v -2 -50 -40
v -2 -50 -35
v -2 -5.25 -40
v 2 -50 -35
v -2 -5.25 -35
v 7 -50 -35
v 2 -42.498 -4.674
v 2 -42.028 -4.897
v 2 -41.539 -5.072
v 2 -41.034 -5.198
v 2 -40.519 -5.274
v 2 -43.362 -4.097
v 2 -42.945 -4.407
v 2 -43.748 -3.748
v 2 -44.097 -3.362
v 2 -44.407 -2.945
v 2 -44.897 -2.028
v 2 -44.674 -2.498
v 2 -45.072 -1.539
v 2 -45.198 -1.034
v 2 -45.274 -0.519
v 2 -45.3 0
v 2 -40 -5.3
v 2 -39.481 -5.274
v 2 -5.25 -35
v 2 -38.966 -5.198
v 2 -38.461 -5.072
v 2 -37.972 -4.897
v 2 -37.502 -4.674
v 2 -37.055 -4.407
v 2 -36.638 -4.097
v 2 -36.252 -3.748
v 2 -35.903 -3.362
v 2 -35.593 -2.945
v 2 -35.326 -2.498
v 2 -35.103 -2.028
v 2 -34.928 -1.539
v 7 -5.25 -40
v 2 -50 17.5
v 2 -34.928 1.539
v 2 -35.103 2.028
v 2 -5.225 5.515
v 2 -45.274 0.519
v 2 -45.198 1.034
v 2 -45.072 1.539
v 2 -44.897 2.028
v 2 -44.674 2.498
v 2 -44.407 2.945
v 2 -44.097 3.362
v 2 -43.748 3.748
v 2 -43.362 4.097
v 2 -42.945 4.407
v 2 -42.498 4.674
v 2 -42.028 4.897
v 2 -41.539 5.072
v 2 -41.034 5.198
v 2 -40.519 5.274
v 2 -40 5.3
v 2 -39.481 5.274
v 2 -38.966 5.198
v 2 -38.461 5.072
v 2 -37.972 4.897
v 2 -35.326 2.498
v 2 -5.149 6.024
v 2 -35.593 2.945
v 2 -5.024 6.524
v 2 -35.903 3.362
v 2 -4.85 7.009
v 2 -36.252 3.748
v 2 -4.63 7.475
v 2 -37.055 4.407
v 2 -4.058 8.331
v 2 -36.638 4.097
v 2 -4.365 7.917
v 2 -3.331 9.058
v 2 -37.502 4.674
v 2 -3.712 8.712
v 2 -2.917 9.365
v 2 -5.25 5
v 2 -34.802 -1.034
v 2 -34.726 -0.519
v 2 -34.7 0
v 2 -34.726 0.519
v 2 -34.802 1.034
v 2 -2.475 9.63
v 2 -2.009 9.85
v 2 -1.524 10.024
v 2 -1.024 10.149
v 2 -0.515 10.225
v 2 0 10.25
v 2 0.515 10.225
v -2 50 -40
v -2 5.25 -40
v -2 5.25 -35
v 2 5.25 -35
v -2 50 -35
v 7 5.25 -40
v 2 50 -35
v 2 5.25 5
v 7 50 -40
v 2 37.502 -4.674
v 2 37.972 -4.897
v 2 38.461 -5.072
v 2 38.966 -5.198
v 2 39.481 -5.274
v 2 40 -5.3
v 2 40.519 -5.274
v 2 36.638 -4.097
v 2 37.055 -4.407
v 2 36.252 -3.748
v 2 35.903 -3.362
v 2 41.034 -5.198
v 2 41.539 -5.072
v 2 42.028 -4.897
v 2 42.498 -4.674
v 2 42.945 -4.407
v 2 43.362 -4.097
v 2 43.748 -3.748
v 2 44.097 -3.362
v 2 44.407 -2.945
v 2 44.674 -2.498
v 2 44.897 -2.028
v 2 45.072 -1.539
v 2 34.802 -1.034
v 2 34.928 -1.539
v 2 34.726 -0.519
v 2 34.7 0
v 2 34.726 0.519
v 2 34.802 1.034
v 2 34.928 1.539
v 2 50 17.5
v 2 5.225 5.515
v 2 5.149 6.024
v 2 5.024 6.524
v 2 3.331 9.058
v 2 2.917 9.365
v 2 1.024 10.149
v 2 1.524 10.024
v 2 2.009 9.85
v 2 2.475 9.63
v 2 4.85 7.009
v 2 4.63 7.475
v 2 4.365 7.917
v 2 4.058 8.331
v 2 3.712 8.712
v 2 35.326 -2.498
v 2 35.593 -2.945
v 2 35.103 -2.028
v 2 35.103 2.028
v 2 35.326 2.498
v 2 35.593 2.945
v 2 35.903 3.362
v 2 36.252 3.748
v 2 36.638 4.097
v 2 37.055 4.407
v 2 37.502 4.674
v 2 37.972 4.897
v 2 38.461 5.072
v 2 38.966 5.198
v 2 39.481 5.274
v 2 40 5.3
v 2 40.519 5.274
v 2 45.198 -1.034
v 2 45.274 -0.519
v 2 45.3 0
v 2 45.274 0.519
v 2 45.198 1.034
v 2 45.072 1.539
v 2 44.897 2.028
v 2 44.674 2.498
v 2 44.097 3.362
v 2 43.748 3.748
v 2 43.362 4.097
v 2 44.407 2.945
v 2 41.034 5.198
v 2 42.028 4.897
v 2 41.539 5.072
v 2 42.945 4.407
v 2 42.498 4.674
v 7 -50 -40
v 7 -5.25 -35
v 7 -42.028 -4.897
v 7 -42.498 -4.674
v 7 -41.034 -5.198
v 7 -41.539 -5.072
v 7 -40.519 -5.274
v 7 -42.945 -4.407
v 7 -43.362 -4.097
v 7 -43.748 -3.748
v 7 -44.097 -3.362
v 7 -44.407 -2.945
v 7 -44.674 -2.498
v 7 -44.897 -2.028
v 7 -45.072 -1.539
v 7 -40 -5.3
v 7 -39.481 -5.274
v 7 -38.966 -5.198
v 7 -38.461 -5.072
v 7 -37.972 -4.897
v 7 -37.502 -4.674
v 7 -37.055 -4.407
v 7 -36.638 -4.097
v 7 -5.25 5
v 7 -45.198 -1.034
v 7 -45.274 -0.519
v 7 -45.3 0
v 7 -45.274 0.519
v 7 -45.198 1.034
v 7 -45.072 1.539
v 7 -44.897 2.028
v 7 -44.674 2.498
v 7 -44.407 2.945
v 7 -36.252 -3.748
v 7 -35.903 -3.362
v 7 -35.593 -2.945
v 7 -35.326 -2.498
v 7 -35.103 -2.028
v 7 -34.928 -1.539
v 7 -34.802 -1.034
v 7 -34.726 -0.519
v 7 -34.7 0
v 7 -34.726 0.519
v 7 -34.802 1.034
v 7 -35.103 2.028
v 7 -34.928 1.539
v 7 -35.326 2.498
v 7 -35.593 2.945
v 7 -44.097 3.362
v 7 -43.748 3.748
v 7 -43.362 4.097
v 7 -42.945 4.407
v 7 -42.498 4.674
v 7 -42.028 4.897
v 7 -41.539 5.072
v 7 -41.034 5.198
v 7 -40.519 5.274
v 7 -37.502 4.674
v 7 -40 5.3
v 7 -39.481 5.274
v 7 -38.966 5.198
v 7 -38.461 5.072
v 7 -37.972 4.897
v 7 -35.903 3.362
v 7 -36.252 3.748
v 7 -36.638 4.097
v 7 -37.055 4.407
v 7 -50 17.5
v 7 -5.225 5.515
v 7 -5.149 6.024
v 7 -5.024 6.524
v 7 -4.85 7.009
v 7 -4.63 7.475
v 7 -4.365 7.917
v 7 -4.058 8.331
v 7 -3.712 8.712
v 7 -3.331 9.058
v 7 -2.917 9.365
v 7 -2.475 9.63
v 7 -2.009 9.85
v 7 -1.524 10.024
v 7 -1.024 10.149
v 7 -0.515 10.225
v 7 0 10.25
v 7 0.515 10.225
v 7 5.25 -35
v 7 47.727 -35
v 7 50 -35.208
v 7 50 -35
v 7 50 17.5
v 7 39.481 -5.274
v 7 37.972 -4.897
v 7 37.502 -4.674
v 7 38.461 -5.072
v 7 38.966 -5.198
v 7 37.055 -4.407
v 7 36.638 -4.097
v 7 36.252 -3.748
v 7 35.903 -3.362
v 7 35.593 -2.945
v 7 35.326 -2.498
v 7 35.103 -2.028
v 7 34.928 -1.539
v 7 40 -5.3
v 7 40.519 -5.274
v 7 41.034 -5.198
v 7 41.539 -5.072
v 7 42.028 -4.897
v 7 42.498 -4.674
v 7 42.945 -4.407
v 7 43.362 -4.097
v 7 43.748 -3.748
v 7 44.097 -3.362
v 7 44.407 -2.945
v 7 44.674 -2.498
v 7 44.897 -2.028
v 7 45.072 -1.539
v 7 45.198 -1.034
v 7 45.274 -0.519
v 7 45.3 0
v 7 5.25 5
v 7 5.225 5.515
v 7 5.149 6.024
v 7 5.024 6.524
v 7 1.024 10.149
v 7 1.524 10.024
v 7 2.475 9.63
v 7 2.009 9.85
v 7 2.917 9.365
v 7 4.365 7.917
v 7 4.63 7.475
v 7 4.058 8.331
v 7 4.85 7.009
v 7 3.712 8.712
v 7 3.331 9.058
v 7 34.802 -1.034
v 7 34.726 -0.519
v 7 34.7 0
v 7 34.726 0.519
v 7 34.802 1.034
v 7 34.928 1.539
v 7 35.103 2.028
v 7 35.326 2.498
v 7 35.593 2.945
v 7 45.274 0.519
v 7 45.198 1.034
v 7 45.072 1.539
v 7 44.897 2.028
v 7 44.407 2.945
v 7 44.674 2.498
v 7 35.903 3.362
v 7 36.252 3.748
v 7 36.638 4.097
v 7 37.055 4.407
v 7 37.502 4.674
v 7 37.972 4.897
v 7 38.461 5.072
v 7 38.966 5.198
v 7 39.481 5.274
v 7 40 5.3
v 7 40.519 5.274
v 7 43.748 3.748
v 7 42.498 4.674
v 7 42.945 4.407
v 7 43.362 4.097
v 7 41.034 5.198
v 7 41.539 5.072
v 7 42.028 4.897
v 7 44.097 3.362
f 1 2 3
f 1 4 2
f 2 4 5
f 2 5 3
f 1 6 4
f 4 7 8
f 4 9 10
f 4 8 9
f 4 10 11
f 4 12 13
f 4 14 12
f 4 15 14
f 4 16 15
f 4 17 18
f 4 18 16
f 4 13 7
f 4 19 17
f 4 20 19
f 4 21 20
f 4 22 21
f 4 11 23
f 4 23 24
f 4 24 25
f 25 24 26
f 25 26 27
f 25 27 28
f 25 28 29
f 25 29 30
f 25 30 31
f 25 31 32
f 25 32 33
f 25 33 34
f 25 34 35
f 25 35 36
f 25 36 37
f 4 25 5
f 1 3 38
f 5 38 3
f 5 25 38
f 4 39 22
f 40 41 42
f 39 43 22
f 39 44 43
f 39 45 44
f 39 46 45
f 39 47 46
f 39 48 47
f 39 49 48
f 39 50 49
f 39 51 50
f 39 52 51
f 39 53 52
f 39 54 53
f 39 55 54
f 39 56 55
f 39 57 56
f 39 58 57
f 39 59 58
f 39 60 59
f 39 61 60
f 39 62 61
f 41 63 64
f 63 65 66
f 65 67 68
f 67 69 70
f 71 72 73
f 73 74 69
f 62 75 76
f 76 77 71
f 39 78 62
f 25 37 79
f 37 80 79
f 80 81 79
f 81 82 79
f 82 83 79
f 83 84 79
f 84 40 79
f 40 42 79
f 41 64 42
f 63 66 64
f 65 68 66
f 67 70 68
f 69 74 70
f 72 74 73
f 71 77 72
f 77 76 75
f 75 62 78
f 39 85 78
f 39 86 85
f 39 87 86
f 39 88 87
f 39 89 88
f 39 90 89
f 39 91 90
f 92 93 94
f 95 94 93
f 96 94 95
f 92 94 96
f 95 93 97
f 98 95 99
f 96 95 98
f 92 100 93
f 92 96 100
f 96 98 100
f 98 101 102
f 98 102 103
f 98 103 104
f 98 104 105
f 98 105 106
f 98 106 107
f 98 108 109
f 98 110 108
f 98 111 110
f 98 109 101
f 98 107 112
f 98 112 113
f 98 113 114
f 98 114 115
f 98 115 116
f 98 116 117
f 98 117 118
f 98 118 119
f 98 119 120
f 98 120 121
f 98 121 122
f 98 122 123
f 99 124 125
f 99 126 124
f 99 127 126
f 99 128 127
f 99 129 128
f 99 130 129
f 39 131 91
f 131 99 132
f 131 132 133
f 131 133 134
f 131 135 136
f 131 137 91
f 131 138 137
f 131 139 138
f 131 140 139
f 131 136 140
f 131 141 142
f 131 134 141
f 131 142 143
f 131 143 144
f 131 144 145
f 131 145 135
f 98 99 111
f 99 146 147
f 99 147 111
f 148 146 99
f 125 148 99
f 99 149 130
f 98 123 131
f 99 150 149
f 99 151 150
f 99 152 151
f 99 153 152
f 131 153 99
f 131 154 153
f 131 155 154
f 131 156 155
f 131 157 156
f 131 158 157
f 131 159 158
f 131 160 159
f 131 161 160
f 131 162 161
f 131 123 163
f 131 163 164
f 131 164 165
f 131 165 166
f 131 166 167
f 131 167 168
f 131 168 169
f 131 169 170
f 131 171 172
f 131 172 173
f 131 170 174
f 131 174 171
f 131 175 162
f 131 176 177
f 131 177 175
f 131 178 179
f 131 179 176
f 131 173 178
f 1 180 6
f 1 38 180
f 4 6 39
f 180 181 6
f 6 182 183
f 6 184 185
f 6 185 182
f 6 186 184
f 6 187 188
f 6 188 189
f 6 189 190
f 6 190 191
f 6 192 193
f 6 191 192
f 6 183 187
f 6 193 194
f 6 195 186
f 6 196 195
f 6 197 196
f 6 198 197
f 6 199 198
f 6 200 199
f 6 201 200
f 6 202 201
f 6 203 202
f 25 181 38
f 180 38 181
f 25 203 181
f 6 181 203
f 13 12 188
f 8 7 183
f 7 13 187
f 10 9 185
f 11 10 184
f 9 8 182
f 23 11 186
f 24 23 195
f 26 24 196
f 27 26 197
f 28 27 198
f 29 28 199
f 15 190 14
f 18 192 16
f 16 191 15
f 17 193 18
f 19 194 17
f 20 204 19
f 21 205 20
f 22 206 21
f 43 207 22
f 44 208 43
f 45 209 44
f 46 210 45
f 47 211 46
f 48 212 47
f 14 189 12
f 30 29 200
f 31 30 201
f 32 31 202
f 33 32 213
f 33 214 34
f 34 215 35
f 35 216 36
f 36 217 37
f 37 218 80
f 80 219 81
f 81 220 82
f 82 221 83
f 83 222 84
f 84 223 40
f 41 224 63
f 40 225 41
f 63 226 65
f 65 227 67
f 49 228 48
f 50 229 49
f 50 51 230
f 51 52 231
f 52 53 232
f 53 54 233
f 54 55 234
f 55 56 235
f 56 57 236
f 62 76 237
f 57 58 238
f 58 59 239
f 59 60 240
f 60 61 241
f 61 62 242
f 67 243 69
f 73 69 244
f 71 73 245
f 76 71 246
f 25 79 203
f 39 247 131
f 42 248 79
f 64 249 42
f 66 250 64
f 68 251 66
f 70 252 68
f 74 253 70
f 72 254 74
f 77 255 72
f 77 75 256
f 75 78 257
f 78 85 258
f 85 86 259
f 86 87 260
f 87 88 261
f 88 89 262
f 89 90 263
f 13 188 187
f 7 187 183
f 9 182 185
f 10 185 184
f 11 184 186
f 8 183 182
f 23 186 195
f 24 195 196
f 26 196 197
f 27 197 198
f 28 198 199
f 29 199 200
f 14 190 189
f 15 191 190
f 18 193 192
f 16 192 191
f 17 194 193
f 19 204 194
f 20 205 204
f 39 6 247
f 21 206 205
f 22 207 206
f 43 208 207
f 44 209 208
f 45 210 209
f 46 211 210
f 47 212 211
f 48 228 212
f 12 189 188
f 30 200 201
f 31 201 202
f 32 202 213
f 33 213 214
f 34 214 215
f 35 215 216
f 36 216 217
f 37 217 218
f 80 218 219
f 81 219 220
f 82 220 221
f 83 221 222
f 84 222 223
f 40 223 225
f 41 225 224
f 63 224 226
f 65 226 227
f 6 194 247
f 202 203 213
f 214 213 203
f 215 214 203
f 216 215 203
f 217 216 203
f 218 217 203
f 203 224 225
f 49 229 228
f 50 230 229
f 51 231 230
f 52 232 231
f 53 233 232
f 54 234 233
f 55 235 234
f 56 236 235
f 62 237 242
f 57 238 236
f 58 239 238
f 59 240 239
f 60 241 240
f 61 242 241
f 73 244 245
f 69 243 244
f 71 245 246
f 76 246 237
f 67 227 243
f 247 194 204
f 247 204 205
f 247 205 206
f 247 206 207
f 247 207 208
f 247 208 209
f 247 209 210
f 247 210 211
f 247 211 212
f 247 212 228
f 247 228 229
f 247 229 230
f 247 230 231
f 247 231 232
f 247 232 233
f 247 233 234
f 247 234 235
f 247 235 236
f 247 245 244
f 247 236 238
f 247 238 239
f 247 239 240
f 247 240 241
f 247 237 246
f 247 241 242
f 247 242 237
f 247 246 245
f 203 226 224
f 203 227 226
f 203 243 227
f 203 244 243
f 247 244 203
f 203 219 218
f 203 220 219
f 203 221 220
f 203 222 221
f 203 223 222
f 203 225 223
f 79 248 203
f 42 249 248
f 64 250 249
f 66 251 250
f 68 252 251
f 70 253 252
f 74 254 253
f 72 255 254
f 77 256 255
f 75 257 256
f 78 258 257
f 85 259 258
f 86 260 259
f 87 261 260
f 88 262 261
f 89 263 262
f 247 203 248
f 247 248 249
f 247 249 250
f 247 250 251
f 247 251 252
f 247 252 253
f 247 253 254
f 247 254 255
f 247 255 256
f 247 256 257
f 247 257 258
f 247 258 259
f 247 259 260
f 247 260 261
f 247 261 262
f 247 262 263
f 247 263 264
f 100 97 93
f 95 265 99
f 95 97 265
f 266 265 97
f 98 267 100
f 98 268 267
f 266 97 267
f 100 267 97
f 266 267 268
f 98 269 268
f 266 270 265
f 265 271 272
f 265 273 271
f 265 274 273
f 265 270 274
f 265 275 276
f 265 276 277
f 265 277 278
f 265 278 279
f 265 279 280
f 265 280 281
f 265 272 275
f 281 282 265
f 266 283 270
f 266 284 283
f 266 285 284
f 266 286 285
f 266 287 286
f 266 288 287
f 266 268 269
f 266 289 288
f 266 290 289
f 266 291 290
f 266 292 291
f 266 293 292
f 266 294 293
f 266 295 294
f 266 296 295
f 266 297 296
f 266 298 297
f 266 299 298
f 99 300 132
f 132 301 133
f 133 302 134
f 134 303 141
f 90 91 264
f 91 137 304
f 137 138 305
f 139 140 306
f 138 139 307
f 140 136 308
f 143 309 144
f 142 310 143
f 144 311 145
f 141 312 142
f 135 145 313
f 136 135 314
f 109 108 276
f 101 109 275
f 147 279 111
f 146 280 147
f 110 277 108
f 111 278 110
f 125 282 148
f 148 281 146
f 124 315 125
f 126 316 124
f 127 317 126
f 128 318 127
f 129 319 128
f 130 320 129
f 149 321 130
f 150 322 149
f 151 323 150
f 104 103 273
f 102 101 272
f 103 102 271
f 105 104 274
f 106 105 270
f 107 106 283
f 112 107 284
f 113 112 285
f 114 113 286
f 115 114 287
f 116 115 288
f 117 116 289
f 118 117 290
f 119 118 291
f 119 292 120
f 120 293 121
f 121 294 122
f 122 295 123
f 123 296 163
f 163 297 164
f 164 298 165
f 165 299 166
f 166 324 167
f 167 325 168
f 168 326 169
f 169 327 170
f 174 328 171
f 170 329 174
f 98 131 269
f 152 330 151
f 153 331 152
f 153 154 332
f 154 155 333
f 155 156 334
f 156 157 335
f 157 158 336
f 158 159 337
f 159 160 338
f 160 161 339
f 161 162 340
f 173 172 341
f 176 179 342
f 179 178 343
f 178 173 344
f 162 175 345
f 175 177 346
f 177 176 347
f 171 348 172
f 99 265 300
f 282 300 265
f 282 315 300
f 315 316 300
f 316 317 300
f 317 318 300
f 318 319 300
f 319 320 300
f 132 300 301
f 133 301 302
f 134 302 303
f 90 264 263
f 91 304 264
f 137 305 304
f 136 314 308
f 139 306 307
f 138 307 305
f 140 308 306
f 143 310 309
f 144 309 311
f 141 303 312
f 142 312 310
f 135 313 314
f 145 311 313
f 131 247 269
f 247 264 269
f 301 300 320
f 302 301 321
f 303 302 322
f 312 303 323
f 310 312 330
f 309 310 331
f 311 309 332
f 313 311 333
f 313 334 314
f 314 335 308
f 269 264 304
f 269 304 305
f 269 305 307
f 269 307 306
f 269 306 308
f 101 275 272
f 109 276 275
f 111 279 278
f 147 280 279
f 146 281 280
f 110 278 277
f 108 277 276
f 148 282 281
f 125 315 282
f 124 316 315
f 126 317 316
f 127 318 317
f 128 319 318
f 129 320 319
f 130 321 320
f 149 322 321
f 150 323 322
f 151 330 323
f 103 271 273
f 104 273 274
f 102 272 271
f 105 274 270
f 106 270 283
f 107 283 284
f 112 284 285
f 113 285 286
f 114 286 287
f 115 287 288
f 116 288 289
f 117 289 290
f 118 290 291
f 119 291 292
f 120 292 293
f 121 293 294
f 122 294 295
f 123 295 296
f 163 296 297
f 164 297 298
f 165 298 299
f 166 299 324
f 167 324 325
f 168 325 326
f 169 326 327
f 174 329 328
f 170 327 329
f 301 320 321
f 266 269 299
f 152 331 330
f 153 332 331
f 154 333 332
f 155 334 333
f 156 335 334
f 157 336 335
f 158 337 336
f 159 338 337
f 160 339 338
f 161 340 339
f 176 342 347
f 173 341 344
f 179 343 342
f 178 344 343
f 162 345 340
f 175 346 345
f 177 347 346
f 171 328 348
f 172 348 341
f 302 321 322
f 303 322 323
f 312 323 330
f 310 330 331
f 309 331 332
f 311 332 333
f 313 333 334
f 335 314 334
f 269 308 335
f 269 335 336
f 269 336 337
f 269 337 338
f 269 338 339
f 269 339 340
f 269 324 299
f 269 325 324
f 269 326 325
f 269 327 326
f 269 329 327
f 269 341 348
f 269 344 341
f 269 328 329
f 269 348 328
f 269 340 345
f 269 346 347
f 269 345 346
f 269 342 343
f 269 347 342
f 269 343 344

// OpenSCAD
// file: ../parts/bracket_side_plate.scad
include <../config/parameters.scad>

// Zet deze op 'true' om het model plat te leggen voor DXF export
export_als_dxf = false; 

if (export_als_dxf) {
    projection(cut = false) 
        rotate([0, 90, 0]) 
            bracket_side_plate(show_bend = false, bend_angle = 90);
} else {
    // 3D weergave (nu bij 'false')
    bracket_side_plate(show_bend = false, bend_angle = 90);
}

module bracket_side_plate(show_bend = true, bend_angle = 90) {
    h_total = arm_height + axle_bottom_dist;
    z_center = (arm_height - axle_bottom_dist) / 2;
    
    y_center_width = side_plate_width - (2 * extra_space_bracket);

    color("#A0A0A0") {
        difference() {
            if (show_bend) {
                union() {
                    translate([0, 0, z_center])
                        cube([bracket_thick, y_center_width, h_total], center=true);

                    translate([0, y_center_width / 2, z_center])
                        rotate([0, 0, bend_angle])
                            translate([0, extra_space_bracket / 2, 0])
                                cube([bracket_thick, extra_space_bracket, h_total], center=true);

                    translate([0, -y_center_width / 2, z_center])
                        rotate([0, 0, -bend_angle])
                            translate([0, -extra_space_bracket / 2, 0])
                                cube([bracket_thick, extra_space_bracket, h_total], center=true);

                    for (y = [-1, 1]) {
                        translate([0, y * tab_offset_y, arm_height + (bracket_thick / 2)])
                            cube([bracket_thick, tab_length, bracket_thick], center=true);
                    }
                }
            } else {
                union() {
                    hull() { 
                        translate([0, 0, arm_height]) 
                            cube([bracket_thick, side_plate_width, 0.1], center=true);
                        translate([0, 0, -axle_bottom_dist])
                            cube([bracket_thick, side_plate_width, 0.1], center=true);
                    }
                    
                    for (y = [-1, 1]) {
                        translate([0, y * tab_offset_y, arm_height + (bracket_thick / 2)])
                            cube([bracket_thick, tab_length, bracket_thick], center=true);
                    }
                }
            }

            rotate([0, 90, 0]) {
                translate([-5, 0, 0]) 
                    cylinder(d = axle_dia, h = bracket_thick + 10, center = true);
                translate([axle_bottom_dist / 2, 0, 0])
                    cube([axle_bottom_dist + 8, axle_dia, bracket_thick + 10], center = true);
            }

            rotate([0, 90, 0]) {
                translate([0, axle_hole_distance, 0])
                    cylinder(d = axle_hole_diameter, h = bracket_thick + 10, center = true);
                translate([0, -axle_hole_distance, 0])
                    cylinder(d = axle_hole_diameter, h = bracket_thick + 10, center = true);
            }

            for (z_pos = [-axle_bottom_dist + side_hole_start_from_bottom : side_hole_pitch : arm_height - side_hole_start_from_bottom]) {
                
                if (show_bend) {
                    translate([0, y_center_width / 2, 0])
                        rotate([0, 0, bend_angle])
                            translate([0, extra_space_bracket / 2, z_pos])
                                rotate([0, 90, 0])
                                    cylinder(d = bracket_bolt_diameter, h = bracket_thick + 20, center = true);
                    
                    translate([0, -y_center_width / 2, 0])
                        rotate([0, 0, -bend_angle])
                            translate([0, -extra_space_bracket / 2, z_pos])
                                rotate([0, 90, 0])
                                    cylinder(d = bracket_bolt_diameter, h = bracket_thick + 20, center = true);
                } else {
                    translate([0, y_center_width / 2 + extra_space_bracket / 2, z_pos])
                        rotate([0, 90, 0])
                            cylinder(d = bracket_bolt_diameter, h = bracket_thick + 20, center = true);
                    
                    translate([0, -(y_center_width / 2 + extra_space_bracket / 2), z_pos])
                        rotate([0, 90, 0])
                            cylinder(d = bracket_bolt_diameter, h = bracket_thick + 20, center = true);
                }
            }
        }
    }
}
// file: ../config/parameters.scad
// Global Chassis Dimensions
chassis_width = 750; //kies een veelvoud van 50  
chassis_length = 1000; //kies een veelvoud van 50

// --- Modulair Gatenpatroon (Grid) ---
grid_step = 50; // Universele stapgrootte voor alle gaten

// --- Bereiken (Ranges) voor de Robot Afmetingen ---
// Bereik voor de BREEDTE 
chassis_width_min = 550;
chassis_width_max = 850;

// Bereik voor de LENGTE 
chassis_length_min = 700;
chassis_length_max = 1100;

// Bereik voor de BASE PLATE 
base_length_min = 800;
base_length_max = 1300;

// Beam Profile (Purchased Part)
beam_profile = 40;
beam_thickness = 2;    
beam_length_1 = 1000;
beam_length_2 = 1300;

// Upright & Cover
base_plate_length = 1300;
connect_plate_thick = 5; 
upright_height = 500;
top_side_width = 60;
cover_thick = 5;
cover_clearance = 10;  
cover_overlap = 10;
cover_total_height = 530; 
hole_distance_cover = 30;

// Resolution & Preview
$fn = 60; 
exploded_view = false; 
explosion_dist = 800; 

// Motor & Wheel Data
tire_dia = 430;
tire_width = 100;
hub_dia = 160;
hub_width = 140; //specs from Quinder are: Fork width for mounting: 138mm
axle_dia = 10.2; //specs from Quinder are: Mounting hole: max 10.2mm
bolt_dia = 14.2;

// Bracket Geometry universal
bracket_thick = 4;
bracket_bolt_diameter = 10.4; //dikte van de gaten van gaten van de wiel_bracket     
tire_clearance = 130;      
side_plate_top_width = 240;
side_plate_width = 240;

//Side plate
axle_bottom_dist = 35;
extra_space_bracket = 40;
side_hole_start_from_bottom = 20; 
side_hole_pitch = 100; 

tab_length = 40;         // Lengte van de nok/sleuf
tab_offset_y = 40;       // Positie vanaf het midden over de Y-as (uit elkaar)
laser_tolerance = 1.0;   // Extra snijspeling zodat het makkelijk in elkaar schuift

//top plate
bracket_top_hole_dist_x = 100; // De totale gewenste afstand over de X-as veelvoud van 50 maken
bracket_top_hole_dist_y = 150; // De totale gewenste afstand over de Y-as veelvoud van 50 maken


arm_height = (tire_dia / 2) + tire_clearance;
inner_width = hub_width;
bracket_total_width = inner_width + (extra_space_bracket*2) + (2 * bracket_thick);
bracket_top_z = arm_height + bracket_thick;

// Axle bracket
axle_hex_width = 110;          
axle_hex_height = 40;
axle_hex_straight_part = 30;   
axle_bracket_thickness = 4;    

axle_hole_diameter = 10.3; //Dikte van het gaten in de axle_bracket
axle_hole_distance = 40; //hoogte vanaf de onderkant tot de wiel ophanging

axle_flat_width = axle_dia; // Gebruikt 10.2 uit parameters 
axle_round_dia = bolt_dia;  // Gebruikt 14.2 uit parameters

// --- Caster Wheel Parameters ---  
bracket_width            = 80;  
bracket_thickness        = 4;
caster_wheel_axle_width  = 130;   
caster_wheel_axle_diameter = 20;
bracket_axle_hole_diameter = 10.4;

pivot_cylinder_dia       = 30;  
pivot_cylinder_height    = 100;  

outer_cylinder_thickness = 5;   
outer_cylinder_height    = 60;  
outer_cylinder_z_offset  = 33;   
kap_speling              = 1;   

tube_width               = 35;  
tube_thickness           = 2;   
tube_length              = 400;
tube_length_min          = 240;
// main file
// ==========================================
// LOCAL TEMPLATE CONFIG (Hardcoded)
// ==========================================
tpl_width = 100;        // Wider than the hole spacing (axle_hole_distance is 30)
tpl_height = 55;       // Tall enough to cover the axle slot and holes
tpl_thickness = 5;     // Thickness of the 3D-printed template
tpl_clearance = 0.3;   // Extra tolerance so drill/bolt does not bind in plastic
bottom_slot = 10;      // 10 for an open bottom or 8 or lower for an closed bottom

// DEBUG MODE - Set to 'false' before exporting STL
show_reference = true; 

// ==========================================
// EXTERNAL DATA (Linked)
// ==========================================
include <../config/parameters.scad>; 
use <../parts/bracket_side_plate.scad>;

// ==========================================
// GEOMETRY LOGIC
// ==========================================

module drill_template() {
    difference() {
        union() {
            translate([(bracket_thick / 2) + (tpl_thickness / 2), 0, -10])
                cube([tpl_thickness, tpl_width, tpl_height], center=true);
            
            translate([tpl_thickness / 2, 0, -axle_bottom_dist - (tpl_thickness / 2)])
                cube([bracket_thick + tpl_thickness, tpl_width, tpl_thickness], center=true);
        }

        rotate([0, 90, 0]) {
            
            translate([-5, 0, 0]) 
                cylinder(d = axle_dia + tpl_clearance, h = 50, center = true, $fn = 64);
            
            translate([axle_bottom_dist / 2, 0, 0])
                cube([axle_bottom_dist + bottom_slot, axle_dia + tpl_clearance, 50], center = true);

            translate([0, axle_hole_distance, 0])
                cylinder(d = axle_hole_diameter + tpl_clearance, h = 50, center = true, $fn = 64);

            translate([0, -axle_hole_distance, 0])
                cylinder(d = axle_hole_diameter + tpl_clearance, h = 50, center = true, $fn = 64);
        }
    }
}

// ==========================================
// RENDER
// ==========================================

color("DodgerBlue") {
    drill_template();
}

if (show_reference) {
    %bracket_side_plate(); 
}
